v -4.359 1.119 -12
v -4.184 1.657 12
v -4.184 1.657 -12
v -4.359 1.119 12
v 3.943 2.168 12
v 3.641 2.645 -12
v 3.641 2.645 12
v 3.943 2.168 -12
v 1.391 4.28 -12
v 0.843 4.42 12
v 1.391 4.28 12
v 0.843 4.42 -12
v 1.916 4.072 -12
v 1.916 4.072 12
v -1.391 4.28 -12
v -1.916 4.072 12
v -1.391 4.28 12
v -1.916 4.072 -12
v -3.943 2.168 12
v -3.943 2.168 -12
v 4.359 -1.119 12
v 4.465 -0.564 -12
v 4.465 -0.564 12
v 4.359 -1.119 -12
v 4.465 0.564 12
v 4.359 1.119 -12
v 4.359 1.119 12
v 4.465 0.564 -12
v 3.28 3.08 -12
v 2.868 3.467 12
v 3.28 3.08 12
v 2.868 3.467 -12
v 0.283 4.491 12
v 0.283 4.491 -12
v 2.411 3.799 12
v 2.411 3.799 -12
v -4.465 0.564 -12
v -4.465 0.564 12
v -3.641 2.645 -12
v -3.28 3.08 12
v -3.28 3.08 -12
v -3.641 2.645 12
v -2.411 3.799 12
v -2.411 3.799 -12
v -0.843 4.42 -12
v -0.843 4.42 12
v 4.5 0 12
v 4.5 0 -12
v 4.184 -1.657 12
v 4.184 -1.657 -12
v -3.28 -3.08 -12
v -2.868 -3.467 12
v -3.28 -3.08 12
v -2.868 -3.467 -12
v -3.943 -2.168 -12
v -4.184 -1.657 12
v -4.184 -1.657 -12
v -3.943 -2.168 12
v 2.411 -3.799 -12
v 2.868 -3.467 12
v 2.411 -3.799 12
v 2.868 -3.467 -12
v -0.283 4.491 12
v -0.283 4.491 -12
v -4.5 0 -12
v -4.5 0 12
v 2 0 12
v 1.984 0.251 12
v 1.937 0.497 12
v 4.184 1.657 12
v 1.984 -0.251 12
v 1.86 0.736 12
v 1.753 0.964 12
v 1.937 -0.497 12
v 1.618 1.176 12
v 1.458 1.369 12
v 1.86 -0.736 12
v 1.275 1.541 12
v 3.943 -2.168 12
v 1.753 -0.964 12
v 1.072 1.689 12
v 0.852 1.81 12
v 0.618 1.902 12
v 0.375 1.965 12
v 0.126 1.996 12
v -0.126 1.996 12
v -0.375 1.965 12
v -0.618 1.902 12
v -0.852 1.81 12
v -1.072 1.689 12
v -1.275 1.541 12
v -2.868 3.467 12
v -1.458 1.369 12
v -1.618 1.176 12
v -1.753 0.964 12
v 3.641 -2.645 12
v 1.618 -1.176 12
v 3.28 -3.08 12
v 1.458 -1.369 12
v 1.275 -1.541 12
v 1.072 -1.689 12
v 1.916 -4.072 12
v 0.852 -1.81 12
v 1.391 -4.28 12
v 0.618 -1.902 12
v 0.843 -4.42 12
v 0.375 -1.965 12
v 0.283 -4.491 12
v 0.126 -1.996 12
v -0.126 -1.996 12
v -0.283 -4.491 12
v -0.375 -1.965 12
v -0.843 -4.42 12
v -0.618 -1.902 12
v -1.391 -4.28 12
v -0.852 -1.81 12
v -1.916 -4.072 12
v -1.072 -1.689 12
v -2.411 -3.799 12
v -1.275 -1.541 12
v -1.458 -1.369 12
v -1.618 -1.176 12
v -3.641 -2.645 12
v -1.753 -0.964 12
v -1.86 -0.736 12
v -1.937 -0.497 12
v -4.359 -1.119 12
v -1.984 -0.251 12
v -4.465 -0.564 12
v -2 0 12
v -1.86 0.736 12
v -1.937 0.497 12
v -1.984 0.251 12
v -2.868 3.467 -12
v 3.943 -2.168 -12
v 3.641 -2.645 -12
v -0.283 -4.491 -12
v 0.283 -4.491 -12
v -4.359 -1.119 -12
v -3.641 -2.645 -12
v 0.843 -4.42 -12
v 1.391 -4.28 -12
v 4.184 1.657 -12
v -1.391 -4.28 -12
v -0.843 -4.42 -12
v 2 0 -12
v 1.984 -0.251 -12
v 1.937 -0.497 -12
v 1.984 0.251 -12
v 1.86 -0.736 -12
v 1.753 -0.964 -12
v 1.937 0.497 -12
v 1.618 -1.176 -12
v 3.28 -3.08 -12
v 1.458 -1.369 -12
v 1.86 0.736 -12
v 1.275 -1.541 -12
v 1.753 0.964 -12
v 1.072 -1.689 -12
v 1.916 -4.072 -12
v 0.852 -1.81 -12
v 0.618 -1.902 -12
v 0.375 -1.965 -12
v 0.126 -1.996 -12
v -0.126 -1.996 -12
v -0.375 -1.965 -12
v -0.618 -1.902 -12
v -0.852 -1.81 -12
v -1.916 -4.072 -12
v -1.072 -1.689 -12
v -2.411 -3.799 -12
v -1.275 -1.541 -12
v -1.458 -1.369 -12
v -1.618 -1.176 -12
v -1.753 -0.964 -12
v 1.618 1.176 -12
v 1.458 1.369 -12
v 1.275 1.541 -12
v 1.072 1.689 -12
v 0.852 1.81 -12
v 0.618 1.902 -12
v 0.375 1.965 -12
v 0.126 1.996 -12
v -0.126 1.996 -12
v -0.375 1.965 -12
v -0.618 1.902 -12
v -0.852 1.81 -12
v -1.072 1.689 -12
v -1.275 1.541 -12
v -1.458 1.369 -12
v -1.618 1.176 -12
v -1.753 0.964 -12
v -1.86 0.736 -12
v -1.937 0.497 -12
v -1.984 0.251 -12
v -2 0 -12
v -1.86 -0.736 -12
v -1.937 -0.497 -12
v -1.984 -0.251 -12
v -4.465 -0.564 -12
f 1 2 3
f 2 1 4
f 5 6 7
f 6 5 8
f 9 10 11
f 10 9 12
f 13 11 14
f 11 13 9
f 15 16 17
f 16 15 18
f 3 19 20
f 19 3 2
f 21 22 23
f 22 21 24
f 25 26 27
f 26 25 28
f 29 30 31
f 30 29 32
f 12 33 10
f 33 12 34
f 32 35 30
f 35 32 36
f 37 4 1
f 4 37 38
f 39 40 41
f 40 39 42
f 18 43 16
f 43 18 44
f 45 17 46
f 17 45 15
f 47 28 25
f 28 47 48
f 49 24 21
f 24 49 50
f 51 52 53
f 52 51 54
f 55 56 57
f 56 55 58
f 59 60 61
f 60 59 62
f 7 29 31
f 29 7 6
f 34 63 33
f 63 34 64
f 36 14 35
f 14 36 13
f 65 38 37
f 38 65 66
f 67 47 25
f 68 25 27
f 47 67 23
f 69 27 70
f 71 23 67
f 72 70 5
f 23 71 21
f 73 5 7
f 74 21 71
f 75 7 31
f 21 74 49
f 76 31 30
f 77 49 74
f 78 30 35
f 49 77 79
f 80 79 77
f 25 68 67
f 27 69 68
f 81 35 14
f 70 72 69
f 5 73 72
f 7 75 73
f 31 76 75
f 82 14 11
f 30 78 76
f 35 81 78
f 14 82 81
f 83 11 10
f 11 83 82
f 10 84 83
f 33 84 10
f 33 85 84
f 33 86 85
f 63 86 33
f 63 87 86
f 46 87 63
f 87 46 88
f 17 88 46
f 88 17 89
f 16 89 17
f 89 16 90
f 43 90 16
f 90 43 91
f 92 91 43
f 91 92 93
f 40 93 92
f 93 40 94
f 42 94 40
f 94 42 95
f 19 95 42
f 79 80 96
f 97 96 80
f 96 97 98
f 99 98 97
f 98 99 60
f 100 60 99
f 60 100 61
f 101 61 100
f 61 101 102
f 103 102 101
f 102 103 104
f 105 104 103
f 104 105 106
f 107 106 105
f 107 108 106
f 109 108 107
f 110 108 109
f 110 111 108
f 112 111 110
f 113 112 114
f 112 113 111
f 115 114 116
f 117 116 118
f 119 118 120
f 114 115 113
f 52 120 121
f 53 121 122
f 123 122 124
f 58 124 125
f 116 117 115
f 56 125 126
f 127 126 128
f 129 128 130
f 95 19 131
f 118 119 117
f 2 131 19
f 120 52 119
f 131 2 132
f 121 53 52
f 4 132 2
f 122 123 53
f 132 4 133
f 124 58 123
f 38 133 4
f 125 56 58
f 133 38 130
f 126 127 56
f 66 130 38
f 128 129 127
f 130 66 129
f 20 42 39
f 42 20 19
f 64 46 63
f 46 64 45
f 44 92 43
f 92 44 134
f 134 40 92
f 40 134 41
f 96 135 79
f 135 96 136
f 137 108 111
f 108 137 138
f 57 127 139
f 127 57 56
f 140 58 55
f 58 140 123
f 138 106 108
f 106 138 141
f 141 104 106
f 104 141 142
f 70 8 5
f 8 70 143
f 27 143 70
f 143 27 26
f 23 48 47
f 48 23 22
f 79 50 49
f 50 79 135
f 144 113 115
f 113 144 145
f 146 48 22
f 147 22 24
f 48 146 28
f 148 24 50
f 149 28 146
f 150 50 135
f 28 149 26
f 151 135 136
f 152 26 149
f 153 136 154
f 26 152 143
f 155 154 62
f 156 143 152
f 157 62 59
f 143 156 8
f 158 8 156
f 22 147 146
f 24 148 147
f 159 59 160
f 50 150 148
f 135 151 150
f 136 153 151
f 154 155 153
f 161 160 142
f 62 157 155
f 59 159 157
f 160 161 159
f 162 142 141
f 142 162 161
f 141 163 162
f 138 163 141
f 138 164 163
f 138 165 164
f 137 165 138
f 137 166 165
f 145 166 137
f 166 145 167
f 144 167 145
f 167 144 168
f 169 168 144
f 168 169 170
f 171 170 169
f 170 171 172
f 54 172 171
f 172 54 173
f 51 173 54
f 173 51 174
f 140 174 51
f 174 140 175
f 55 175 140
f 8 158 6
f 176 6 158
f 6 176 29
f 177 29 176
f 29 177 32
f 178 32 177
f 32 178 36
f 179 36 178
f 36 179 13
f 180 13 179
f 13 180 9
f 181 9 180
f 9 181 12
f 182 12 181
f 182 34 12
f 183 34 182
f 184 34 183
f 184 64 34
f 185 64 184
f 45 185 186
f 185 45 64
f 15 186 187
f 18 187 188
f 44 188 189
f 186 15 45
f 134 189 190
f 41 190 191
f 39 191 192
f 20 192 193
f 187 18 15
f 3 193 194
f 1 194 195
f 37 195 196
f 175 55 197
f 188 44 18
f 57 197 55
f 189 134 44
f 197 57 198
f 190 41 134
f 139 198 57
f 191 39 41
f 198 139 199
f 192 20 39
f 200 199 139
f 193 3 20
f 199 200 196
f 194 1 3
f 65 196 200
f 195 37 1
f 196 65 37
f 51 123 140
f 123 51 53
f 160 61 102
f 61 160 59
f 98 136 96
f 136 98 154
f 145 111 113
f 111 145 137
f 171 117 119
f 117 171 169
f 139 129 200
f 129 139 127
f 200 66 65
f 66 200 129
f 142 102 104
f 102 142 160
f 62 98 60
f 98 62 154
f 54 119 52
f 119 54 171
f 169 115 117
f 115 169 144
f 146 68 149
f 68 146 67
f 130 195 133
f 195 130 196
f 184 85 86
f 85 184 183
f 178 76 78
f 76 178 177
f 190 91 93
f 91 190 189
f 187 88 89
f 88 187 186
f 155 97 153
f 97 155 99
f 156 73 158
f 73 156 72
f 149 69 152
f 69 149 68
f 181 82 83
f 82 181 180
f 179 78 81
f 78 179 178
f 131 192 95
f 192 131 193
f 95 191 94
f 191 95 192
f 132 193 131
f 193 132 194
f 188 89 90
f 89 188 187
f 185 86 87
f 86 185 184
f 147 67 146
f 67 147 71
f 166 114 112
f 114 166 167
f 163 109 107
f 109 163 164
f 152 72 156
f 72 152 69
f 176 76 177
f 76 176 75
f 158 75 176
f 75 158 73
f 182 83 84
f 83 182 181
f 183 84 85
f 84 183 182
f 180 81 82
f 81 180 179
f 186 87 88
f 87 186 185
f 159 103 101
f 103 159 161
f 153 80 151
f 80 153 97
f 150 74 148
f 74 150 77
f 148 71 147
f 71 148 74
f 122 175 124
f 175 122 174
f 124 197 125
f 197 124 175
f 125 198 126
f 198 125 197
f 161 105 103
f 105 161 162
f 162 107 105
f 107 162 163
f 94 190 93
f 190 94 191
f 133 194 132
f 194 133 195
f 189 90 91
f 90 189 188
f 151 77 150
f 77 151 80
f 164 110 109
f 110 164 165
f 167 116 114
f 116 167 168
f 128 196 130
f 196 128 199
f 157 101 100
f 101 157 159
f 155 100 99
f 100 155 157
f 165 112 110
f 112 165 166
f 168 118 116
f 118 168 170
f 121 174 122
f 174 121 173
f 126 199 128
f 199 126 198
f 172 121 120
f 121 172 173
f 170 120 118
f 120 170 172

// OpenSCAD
$fn = 50;


difference() {
	union() {
		translate(v = [0, 0, -12.0000000000]) {
			cylinder(h = 24, r = 4.5000000000);
		}
	}
	union() {
		translate(v = [0, 0, -100.0000000000]) {
			cylinder(h = 200, r = 2);
		}
	}
}
